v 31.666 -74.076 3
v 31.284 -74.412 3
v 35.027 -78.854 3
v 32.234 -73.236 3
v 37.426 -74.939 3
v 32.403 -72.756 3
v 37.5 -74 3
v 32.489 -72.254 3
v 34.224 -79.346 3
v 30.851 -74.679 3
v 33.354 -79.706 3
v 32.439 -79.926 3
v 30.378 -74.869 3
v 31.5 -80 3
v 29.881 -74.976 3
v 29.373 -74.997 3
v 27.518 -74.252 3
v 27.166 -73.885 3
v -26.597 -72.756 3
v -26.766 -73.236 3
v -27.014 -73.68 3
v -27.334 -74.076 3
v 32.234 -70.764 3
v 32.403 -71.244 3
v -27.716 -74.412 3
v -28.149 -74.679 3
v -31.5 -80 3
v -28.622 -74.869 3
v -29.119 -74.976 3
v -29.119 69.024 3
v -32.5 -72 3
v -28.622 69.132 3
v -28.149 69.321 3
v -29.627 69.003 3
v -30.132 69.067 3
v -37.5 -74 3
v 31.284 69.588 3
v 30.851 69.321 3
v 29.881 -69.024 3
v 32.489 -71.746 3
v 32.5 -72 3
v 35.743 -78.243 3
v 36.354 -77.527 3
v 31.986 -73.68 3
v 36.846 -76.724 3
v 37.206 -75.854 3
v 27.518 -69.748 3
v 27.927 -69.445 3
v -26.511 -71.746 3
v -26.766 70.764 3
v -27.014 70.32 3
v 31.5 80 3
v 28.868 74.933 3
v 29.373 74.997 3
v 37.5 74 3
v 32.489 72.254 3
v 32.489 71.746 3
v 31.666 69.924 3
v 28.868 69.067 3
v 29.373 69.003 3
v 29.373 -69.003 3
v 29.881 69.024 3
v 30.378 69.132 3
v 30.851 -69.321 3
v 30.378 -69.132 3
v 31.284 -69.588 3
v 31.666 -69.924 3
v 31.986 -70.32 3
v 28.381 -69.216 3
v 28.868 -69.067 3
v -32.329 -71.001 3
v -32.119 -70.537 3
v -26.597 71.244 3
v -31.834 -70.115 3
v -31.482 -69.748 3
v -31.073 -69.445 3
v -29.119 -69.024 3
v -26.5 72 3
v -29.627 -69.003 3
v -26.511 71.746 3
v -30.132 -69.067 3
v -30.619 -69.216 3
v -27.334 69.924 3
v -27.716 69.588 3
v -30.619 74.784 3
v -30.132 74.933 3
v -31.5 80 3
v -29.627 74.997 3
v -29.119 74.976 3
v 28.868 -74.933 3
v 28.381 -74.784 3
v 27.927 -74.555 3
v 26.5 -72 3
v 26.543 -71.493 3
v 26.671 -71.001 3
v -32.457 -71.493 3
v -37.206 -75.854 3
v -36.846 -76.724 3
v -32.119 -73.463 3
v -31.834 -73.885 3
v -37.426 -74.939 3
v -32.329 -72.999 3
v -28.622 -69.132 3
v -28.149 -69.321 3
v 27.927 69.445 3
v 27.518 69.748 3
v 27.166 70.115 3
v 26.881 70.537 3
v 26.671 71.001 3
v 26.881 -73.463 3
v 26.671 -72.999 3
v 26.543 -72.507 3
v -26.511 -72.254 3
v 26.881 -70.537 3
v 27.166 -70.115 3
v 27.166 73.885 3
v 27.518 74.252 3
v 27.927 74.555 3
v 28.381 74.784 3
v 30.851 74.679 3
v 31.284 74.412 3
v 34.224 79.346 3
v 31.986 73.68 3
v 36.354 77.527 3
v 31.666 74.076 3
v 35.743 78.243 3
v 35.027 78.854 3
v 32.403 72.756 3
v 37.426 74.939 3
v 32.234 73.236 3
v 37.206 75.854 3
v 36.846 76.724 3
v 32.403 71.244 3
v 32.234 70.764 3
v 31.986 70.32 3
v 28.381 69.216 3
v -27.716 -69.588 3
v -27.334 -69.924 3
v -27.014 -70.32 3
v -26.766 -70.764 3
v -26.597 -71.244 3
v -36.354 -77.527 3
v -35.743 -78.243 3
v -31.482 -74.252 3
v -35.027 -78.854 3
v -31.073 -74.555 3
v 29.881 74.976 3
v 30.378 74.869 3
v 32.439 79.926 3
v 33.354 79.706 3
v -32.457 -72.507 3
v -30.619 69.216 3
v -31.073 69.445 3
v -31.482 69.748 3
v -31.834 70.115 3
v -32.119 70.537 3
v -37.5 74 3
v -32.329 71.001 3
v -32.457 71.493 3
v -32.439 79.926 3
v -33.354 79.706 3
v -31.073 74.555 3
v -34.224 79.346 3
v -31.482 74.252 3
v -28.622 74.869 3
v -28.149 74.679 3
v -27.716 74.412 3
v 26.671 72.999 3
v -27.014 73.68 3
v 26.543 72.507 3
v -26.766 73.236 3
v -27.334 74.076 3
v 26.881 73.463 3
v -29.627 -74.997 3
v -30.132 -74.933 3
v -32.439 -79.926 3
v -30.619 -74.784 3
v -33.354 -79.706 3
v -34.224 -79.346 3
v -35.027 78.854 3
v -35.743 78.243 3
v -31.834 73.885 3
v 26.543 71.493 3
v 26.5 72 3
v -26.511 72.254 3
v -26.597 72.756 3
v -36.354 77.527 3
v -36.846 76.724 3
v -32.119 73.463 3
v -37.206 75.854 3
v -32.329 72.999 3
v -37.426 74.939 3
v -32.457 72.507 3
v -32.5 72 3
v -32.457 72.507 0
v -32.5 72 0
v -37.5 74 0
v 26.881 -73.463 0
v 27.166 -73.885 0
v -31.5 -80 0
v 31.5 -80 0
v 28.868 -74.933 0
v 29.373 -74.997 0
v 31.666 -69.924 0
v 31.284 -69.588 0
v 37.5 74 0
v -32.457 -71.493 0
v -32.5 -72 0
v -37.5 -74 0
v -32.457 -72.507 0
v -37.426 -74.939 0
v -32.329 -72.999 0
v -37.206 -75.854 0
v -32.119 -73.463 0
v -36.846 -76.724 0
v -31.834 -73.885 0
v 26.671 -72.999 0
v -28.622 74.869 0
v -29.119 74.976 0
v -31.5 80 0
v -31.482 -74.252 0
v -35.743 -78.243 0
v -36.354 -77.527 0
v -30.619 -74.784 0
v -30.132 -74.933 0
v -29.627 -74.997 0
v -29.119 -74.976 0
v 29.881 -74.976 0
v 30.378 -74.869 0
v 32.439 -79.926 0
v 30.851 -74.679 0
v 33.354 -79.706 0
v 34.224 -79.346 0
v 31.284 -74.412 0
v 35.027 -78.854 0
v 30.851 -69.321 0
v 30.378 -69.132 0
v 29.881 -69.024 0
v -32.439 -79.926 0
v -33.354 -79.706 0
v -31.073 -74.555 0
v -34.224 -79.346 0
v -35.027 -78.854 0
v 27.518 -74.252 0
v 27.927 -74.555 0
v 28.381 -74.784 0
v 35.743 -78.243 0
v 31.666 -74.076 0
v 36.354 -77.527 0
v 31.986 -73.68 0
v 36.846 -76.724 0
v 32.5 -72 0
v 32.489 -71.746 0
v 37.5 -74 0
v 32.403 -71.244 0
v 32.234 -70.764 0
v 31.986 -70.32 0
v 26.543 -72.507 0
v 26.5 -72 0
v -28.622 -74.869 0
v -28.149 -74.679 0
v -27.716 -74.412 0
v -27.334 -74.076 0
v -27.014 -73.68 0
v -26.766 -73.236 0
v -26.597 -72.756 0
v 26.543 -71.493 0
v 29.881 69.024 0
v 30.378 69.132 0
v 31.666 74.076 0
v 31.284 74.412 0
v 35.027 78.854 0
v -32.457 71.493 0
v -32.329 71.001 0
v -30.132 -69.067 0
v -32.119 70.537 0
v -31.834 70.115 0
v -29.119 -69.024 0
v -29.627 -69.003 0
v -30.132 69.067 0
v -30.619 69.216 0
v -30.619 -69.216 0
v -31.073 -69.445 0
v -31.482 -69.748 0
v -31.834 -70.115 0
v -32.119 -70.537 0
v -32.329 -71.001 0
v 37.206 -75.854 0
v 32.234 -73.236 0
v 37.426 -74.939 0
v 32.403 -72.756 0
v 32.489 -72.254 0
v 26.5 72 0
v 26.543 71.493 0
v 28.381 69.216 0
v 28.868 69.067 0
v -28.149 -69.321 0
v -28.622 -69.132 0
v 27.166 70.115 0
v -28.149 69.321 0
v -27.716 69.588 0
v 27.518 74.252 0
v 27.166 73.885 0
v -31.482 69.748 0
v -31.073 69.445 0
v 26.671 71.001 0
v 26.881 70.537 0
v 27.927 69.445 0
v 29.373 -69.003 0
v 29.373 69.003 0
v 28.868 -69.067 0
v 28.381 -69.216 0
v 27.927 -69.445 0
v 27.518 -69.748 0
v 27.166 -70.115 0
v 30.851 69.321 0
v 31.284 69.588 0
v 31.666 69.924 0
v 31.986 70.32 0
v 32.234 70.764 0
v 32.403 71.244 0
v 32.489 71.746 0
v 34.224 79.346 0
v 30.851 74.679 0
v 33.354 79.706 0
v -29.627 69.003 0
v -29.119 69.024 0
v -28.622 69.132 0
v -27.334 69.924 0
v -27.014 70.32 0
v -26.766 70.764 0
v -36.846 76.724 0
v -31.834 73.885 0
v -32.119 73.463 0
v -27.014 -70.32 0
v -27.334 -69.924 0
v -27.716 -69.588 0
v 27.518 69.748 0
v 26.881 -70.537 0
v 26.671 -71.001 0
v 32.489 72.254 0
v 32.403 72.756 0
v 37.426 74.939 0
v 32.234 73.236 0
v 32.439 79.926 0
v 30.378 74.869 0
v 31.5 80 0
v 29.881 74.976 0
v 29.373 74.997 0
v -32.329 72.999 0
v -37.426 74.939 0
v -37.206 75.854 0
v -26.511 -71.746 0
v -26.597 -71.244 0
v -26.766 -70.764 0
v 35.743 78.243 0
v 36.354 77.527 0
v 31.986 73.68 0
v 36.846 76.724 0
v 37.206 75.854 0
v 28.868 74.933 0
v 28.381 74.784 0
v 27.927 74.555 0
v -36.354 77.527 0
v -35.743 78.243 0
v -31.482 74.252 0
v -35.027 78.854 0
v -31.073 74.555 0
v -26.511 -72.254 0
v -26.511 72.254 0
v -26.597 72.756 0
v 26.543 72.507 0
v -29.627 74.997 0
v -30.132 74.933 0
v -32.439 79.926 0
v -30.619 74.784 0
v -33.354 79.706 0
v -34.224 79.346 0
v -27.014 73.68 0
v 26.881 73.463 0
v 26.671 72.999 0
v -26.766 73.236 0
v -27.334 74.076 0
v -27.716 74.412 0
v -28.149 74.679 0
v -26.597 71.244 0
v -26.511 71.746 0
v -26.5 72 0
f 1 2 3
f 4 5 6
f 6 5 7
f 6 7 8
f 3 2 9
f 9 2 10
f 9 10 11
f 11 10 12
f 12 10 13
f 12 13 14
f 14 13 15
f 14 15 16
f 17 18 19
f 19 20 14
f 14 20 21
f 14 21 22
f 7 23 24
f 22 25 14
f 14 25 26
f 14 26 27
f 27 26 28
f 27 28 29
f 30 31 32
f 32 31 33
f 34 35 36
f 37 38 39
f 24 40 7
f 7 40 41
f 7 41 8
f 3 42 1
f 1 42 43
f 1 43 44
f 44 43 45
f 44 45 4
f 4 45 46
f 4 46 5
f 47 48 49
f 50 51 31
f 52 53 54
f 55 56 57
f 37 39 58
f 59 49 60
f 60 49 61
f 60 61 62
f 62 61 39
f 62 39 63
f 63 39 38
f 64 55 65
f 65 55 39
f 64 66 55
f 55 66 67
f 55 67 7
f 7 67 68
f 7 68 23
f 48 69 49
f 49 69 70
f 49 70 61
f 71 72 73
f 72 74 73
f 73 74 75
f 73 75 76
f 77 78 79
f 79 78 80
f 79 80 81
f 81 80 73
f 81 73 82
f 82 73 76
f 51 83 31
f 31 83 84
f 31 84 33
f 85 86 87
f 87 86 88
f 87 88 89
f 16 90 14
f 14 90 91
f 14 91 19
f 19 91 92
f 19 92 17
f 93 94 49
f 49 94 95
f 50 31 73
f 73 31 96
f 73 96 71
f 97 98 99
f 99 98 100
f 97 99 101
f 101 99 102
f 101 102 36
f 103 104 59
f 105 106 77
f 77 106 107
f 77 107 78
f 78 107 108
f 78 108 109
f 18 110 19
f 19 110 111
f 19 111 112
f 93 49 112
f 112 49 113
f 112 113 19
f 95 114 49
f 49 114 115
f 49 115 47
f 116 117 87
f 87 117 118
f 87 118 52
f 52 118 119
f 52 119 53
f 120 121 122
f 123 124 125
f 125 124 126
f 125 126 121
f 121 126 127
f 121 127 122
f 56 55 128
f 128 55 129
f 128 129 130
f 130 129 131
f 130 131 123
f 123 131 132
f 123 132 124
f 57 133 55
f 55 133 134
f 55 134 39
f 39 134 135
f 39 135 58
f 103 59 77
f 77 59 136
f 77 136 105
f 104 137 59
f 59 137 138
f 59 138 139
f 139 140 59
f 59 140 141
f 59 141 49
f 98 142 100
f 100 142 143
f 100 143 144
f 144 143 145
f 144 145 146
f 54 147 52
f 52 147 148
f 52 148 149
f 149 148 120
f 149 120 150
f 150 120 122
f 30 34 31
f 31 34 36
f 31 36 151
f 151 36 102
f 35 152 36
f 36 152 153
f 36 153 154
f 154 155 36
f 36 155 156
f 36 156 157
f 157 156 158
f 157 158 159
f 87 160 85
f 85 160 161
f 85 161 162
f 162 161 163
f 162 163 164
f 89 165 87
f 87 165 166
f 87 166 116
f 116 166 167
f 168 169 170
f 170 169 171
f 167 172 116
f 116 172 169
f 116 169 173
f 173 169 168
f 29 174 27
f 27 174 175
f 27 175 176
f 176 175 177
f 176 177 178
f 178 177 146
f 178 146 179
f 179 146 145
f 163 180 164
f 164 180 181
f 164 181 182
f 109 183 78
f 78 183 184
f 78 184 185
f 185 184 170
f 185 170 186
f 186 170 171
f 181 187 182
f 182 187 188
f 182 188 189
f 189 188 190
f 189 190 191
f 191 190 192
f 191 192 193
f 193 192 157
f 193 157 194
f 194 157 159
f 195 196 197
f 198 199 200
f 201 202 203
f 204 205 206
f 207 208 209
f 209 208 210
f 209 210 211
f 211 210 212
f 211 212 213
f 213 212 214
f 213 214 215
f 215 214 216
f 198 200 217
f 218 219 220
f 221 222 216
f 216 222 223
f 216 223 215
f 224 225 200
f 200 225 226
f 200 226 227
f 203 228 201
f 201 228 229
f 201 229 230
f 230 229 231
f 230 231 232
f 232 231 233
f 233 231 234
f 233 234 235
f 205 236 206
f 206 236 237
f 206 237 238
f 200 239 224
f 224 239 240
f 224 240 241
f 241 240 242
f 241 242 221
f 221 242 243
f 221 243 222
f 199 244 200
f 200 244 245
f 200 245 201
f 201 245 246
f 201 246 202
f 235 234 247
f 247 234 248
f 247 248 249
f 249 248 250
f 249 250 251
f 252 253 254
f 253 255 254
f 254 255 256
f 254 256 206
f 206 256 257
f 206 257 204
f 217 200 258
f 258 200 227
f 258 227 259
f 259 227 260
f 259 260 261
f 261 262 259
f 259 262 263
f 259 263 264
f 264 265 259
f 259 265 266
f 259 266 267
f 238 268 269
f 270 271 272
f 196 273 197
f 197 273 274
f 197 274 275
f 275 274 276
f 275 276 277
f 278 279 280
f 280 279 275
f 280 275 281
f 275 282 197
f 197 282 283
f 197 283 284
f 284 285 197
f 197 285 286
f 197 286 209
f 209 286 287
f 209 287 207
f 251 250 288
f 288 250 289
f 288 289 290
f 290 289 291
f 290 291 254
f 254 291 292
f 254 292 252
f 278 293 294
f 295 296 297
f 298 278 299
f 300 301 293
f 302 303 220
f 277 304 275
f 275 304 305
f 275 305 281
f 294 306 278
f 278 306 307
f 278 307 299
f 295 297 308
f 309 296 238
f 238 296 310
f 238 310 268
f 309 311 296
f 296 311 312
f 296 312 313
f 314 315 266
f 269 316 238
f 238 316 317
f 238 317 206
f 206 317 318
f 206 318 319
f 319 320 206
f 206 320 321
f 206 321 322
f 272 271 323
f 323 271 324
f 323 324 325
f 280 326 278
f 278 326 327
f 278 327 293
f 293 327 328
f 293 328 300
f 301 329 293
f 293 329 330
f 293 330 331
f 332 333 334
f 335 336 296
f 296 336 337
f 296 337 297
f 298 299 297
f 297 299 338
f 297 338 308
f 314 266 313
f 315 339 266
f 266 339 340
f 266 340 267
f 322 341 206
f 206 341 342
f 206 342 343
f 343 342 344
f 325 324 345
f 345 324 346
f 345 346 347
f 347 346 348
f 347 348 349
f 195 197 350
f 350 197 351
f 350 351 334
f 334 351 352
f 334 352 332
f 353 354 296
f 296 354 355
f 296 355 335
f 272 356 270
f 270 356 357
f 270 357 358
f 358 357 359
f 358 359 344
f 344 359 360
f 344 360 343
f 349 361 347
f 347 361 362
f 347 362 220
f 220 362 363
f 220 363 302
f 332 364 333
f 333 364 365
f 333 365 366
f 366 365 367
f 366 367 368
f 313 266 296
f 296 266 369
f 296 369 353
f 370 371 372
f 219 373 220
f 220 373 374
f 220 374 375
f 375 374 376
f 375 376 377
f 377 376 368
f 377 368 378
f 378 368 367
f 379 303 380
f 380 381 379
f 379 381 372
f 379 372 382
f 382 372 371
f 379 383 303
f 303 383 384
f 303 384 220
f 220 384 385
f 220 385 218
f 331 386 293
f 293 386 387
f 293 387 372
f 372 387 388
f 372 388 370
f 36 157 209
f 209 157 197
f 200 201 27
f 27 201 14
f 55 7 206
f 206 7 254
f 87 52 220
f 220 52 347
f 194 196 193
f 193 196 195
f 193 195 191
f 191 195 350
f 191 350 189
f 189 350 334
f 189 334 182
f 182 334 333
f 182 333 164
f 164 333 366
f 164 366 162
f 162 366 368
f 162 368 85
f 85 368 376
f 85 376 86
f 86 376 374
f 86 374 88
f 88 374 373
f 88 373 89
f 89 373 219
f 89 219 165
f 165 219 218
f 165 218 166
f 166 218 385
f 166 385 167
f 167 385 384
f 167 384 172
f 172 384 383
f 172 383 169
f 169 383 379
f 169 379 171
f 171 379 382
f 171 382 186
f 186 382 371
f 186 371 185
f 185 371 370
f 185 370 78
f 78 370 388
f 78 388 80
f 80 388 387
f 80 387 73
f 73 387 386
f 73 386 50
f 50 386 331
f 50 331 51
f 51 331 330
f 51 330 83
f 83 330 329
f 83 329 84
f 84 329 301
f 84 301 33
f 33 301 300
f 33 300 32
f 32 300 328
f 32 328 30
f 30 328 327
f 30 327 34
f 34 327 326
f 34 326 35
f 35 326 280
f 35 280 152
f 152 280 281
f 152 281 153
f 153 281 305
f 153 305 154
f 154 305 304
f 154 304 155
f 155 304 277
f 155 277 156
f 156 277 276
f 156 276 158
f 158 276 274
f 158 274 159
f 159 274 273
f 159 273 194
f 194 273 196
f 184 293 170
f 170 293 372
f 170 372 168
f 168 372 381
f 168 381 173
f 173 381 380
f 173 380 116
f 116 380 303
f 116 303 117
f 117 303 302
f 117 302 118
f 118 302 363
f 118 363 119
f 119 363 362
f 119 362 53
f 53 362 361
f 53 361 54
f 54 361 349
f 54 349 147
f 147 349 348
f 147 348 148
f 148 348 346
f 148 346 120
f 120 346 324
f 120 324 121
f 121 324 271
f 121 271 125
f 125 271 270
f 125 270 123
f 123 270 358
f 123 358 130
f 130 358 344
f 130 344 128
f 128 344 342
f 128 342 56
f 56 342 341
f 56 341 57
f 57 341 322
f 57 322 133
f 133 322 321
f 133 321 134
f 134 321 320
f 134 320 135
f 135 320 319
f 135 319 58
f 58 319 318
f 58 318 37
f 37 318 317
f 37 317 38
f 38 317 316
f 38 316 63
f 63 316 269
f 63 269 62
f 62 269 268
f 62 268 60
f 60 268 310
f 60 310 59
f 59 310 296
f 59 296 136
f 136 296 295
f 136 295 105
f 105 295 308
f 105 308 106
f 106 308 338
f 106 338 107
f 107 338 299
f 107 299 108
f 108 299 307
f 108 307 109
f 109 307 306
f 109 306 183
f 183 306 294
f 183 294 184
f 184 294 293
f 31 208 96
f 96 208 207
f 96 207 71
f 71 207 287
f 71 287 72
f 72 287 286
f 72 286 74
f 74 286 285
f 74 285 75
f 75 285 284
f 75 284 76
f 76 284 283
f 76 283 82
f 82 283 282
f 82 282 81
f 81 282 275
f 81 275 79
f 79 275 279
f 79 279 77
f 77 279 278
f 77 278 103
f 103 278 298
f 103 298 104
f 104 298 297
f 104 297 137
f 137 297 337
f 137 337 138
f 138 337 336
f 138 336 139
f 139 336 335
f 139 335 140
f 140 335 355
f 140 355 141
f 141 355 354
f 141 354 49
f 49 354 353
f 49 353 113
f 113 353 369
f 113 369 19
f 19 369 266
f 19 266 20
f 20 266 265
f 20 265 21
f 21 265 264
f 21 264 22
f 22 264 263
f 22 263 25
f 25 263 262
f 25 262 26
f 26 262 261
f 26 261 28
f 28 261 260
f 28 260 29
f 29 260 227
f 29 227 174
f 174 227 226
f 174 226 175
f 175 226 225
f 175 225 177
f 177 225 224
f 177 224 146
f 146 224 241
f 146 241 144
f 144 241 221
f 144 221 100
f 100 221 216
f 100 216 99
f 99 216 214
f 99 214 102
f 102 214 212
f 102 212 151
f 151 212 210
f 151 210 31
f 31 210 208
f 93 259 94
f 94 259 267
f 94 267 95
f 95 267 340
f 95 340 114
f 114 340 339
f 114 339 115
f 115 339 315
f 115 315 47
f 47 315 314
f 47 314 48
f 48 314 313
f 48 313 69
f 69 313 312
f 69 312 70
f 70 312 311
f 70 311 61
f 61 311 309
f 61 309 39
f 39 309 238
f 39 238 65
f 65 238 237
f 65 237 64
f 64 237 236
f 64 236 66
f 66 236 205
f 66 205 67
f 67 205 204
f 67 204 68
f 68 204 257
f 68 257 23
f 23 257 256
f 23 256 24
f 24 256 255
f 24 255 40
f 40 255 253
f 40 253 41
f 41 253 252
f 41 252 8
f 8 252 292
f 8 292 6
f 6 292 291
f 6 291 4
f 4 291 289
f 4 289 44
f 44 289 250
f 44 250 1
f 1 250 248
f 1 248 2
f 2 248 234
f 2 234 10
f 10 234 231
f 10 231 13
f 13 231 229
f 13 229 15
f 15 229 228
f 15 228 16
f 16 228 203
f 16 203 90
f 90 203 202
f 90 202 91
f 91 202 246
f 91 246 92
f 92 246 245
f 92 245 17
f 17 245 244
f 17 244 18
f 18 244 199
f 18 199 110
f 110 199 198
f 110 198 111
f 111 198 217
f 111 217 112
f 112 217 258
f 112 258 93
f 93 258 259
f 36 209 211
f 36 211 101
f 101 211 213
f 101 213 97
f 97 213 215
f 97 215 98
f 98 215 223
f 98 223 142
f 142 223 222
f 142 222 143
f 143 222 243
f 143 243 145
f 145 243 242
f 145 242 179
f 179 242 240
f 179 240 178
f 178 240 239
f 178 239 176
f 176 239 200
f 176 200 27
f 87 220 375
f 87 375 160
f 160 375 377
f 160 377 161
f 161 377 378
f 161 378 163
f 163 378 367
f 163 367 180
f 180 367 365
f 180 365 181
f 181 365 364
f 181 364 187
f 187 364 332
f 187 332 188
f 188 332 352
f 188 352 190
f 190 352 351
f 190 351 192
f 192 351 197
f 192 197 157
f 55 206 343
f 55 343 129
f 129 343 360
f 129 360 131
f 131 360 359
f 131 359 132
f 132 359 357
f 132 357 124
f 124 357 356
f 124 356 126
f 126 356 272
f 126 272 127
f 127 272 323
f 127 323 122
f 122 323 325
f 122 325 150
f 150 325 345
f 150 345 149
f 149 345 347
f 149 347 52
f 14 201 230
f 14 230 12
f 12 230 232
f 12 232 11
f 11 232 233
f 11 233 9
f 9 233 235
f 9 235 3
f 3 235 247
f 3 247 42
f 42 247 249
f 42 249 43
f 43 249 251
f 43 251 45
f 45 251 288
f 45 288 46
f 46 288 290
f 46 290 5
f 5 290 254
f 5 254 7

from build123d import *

# Parameters (mm, degrees)
CROQUIS1_W              = 75
CROQUIS1_H              = 160
CROQUIS1_R              = 3
SALIENTE_EXTRUIR1_DEPTH = 3
REDONDEO1_R             = 6


with BuildPart() as part:
    # Croquis1 → Saliente-Extruir1 (new body)
    with BuildSketch(Plane.XY):
        Rectangle(CROQUIS1_W, CROQUIS1_H)
        with Locations((-29.5, 72)):
            Circle(CROQUIS1_R, mode=Mode.SUBTRACT)
        with Locations((29.5, 72)):
            Circle(CROQUIS1_R, mode=Mode.SUBTRACT)
        with Locations((-29.5, -72)):
            Circle(CROQUIS1_R, mode=Mode.SUBTRACT)
        with Locations((29.5, -72)):
            Circle(CROQUIS1_R, mode=Mode.SUBTRACT)
    extrude(amount=SALIENTE_EXTRUIR1_DEPTH)

    # Redondeo1
    redondeo1_edges = [part.edges().sort_by_distance(p)[0] for p in [
        (-37.5, 80, 1.5),
        (37.5, 80, 1.5),
        (37.5, -80, 1.5),
        (-37.5, -80, 1.5),
    ]]
    fillet(redondeo1_edges, radius=REDONDEO1_R)


solid = part.part
